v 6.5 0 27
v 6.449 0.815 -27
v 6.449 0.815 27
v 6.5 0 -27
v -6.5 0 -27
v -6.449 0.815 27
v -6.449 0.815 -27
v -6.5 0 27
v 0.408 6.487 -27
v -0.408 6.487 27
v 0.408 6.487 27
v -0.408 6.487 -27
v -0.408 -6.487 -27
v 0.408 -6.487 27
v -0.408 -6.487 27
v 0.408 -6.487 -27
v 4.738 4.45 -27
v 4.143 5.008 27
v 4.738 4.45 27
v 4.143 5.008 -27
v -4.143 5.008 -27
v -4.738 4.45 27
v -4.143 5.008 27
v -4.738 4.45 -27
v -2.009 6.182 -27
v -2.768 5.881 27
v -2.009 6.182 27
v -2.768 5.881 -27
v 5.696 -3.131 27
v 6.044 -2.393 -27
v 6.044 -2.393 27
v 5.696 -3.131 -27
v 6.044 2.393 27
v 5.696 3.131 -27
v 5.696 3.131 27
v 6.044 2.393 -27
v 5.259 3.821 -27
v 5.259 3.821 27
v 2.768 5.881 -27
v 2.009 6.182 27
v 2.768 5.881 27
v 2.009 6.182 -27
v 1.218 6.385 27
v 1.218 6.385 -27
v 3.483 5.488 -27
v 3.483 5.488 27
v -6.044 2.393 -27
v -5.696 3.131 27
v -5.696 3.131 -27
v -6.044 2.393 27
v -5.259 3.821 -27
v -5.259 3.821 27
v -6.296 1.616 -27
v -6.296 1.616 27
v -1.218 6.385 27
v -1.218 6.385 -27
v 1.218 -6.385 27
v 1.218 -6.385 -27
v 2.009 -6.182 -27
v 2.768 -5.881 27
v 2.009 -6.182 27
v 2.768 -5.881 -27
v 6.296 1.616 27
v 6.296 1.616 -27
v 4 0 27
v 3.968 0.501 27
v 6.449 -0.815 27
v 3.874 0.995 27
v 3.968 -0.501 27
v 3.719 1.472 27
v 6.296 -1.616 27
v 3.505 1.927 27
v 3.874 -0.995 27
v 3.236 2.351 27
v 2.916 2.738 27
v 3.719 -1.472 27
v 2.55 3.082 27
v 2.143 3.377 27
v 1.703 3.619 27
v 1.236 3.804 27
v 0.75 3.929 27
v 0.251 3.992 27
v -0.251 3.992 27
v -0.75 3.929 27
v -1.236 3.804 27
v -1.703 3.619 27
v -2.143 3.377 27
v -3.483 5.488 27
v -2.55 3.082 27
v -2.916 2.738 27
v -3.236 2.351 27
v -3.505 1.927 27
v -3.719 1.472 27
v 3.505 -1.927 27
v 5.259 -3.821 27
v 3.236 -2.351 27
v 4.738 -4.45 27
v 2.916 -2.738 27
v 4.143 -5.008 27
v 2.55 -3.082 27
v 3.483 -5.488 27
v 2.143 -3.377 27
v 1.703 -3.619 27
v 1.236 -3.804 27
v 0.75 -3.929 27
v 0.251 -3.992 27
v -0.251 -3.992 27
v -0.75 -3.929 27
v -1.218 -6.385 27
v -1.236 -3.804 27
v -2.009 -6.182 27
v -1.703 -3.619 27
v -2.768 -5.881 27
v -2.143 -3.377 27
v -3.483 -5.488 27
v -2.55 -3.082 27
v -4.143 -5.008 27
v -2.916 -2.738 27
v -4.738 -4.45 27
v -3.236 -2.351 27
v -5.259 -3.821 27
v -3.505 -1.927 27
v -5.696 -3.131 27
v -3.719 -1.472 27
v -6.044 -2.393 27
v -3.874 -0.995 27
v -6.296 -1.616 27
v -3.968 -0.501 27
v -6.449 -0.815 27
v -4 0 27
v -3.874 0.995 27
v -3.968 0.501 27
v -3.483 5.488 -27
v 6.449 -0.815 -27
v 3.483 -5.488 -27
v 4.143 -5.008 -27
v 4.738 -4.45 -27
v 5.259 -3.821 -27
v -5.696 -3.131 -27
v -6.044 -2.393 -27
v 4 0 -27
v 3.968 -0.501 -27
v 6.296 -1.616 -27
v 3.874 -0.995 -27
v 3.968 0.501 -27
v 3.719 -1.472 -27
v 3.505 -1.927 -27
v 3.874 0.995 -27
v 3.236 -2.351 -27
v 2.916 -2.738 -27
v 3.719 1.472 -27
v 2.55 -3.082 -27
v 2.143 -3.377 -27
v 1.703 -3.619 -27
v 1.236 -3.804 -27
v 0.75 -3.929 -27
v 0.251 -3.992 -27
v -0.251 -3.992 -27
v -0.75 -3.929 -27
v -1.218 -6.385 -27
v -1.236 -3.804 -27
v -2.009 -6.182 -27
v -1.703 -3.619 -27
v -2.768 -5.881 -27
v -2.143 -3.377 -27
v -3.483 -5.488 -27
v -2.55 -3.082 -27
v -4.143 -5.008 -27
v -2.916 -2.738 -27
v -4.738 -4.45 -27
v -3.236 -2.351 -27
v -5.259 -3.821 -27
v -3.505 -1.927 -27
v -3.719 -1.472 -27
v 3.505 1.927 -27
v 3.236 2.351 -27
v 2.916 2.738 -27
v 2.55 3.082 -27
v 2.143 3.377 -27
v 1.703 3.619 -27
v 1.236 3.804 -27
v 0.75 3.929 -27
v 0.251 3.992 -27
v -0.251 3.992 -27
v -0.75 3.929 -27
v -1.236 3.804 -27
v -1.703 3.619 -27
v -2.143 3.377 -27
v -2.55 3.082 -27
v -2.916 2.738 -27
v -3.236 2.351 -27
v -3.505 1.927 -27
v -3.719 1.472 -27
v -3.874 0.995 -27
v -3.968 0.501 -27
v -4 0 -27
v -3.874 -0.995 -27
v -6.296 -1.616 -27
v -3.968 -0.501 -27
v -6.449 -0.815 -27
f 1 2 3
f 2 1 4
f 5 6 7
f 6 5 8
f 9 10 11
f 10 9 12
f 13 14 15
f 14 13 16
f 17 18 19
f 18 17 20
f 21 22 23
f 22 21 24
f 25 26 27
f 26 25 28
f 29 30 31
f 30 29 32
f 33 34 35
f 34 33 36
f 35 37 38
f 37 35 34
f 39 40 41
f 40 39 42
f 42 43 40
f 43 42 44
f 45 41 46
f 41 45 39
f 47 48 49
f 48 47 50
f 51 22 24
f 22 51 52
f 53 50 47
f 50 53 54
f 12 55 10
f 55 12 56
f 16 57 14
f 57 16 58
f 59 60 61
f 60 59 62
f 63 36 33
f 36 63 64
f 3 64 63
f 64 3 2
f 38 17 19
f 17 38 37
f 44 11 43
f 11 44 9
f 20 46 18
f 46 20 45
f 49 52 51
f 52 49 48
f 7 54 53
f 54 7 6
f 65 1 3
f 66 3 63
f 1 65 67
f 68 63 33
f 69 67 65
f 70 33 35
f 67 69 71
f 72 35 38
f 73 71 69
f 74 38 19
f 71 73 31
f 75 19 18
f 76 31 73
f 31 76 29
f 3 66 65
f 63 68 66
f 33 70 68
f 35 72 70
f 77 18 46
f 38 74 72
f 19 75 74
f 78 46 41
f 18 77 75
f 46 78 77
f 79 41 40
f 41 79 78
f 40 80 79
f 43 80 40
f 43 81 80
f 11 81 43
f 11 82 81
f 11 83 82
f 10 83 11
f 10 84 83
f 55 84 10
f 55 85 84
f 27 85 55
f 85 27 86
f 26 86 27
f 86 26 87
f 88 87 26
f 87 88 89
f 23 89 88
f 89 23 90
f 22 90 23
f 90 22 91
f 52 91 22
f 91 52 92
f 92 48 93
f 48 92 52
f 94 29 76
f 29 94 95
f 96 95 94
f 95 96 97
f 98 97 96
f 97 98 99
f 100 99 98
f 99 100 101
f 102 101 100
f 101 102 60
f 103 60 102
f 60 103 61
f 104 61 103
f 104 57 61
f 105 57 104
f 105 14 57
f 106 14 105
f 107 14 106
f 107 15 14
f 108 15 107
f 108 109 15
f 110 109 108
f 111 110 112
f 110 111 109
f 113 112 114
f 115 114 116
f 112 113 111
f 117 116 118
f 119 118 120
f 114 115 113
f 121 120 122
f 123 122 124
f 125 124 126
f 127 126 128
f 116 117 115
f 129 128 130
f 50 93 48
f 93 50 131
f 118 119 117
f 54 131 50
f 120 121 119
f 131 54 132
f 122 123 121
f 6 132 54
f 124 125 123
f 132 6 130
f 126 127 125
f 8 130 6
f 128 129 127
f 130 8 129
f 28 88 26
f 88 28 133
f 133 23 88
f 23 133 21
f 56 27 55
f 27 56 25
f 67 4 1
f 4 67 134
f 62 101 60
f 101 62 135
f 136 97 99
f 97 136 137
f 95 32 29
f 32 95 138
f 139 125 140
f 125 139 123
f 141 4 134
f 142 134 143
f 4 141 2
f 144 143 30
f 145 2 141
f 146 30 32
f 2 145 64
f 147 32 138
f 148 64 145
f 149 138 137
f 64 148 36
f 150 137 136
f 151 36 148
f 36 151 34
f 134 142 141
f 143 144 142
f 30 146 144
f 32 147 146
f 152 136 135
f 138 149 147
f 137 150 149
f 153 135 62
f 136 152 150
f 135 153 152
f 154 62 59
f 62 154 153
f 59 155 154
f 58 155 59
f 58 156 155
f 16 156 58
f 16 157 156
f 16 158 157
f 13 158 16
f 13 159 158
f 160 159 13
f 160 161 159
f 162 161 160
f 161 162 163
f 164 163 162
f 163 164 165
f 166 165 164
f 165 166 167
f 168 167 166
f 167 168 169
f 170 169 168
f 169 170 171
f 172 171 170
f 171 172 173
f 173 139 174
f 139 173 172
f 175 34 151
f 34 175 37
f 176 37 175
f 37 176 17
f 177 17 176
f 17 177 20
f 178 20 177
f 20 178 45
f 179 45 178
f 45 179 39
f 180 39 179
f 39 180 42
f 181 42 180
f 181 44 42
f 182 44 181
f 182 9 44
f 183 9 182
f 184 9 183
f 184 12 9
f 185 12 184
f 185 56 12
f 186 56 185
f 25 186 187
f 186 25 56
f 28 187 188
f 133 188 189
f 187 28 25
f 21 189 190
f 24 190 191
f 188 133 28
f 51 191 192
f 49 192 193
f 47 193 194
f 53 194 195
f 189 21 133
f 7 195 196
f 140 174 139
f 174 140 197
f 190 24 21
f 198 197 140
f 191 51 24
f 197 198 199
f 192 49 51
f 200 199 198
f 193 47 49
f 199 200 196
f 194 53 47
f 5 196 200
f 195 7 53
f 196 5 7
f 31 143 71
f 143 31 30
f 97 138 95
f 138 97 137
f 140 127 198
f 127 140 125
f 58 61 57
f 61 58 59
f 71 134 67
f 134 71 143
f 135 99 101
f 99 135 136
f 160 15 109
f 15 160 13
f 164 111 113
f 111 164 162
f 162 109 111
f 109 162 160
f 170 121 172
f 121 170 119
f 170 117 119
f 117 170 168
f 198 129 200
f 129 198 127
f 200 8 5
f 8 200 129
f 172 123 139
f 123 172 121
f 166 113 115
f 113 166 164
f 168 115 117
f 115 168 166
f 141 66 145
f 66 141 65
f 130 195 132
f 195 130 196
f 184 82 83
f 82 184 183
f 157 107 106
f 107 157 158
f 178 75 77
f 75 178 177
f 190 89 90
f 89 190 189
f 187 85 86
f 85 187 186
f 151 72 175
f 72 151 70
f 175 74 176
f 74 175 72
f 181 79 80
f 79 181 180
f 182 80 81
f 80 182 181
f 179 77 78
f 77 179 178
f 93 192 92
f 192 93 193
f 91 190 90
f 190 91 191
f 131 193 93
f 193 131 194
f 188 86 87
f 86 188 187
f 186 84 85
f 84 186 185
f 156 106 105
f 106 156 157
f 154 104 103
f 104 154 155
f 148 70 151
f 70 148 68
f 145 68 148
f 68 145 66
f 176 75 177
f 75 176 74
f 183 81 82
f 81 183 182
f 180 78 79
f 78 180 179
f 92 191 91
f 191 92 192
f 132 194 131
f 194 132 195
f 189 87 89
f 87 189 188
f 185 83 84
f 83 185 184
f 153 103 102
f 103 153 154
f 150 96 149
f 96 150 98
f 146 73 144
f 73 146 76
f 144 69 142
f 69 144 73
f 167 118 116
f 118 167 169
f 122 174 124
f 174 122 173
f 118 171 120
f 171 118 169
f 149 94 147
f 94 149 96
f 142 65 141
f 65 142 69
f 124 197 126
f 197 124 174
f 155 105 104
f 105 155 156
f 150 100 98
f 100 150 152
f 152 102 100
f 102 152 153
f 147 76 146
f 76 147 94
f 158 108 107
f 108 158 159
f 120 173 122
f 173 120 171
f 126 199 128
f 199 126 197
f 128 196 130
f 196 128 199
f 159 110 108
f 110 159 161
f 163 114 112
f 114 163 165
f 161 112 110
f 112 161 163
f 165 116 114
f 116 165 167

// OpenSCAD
$fn = 50;


difference() {
	union() {
		translate(v = [0, 0, -27.0000000000]) {
			cylinder(h = 54, r = 6.5000000000);
		}
	}
	union() {
		translate(v = [0, 0, -100.0000000000]) {
			cylinder(h = 200, r = 4);
		}
	}
}
